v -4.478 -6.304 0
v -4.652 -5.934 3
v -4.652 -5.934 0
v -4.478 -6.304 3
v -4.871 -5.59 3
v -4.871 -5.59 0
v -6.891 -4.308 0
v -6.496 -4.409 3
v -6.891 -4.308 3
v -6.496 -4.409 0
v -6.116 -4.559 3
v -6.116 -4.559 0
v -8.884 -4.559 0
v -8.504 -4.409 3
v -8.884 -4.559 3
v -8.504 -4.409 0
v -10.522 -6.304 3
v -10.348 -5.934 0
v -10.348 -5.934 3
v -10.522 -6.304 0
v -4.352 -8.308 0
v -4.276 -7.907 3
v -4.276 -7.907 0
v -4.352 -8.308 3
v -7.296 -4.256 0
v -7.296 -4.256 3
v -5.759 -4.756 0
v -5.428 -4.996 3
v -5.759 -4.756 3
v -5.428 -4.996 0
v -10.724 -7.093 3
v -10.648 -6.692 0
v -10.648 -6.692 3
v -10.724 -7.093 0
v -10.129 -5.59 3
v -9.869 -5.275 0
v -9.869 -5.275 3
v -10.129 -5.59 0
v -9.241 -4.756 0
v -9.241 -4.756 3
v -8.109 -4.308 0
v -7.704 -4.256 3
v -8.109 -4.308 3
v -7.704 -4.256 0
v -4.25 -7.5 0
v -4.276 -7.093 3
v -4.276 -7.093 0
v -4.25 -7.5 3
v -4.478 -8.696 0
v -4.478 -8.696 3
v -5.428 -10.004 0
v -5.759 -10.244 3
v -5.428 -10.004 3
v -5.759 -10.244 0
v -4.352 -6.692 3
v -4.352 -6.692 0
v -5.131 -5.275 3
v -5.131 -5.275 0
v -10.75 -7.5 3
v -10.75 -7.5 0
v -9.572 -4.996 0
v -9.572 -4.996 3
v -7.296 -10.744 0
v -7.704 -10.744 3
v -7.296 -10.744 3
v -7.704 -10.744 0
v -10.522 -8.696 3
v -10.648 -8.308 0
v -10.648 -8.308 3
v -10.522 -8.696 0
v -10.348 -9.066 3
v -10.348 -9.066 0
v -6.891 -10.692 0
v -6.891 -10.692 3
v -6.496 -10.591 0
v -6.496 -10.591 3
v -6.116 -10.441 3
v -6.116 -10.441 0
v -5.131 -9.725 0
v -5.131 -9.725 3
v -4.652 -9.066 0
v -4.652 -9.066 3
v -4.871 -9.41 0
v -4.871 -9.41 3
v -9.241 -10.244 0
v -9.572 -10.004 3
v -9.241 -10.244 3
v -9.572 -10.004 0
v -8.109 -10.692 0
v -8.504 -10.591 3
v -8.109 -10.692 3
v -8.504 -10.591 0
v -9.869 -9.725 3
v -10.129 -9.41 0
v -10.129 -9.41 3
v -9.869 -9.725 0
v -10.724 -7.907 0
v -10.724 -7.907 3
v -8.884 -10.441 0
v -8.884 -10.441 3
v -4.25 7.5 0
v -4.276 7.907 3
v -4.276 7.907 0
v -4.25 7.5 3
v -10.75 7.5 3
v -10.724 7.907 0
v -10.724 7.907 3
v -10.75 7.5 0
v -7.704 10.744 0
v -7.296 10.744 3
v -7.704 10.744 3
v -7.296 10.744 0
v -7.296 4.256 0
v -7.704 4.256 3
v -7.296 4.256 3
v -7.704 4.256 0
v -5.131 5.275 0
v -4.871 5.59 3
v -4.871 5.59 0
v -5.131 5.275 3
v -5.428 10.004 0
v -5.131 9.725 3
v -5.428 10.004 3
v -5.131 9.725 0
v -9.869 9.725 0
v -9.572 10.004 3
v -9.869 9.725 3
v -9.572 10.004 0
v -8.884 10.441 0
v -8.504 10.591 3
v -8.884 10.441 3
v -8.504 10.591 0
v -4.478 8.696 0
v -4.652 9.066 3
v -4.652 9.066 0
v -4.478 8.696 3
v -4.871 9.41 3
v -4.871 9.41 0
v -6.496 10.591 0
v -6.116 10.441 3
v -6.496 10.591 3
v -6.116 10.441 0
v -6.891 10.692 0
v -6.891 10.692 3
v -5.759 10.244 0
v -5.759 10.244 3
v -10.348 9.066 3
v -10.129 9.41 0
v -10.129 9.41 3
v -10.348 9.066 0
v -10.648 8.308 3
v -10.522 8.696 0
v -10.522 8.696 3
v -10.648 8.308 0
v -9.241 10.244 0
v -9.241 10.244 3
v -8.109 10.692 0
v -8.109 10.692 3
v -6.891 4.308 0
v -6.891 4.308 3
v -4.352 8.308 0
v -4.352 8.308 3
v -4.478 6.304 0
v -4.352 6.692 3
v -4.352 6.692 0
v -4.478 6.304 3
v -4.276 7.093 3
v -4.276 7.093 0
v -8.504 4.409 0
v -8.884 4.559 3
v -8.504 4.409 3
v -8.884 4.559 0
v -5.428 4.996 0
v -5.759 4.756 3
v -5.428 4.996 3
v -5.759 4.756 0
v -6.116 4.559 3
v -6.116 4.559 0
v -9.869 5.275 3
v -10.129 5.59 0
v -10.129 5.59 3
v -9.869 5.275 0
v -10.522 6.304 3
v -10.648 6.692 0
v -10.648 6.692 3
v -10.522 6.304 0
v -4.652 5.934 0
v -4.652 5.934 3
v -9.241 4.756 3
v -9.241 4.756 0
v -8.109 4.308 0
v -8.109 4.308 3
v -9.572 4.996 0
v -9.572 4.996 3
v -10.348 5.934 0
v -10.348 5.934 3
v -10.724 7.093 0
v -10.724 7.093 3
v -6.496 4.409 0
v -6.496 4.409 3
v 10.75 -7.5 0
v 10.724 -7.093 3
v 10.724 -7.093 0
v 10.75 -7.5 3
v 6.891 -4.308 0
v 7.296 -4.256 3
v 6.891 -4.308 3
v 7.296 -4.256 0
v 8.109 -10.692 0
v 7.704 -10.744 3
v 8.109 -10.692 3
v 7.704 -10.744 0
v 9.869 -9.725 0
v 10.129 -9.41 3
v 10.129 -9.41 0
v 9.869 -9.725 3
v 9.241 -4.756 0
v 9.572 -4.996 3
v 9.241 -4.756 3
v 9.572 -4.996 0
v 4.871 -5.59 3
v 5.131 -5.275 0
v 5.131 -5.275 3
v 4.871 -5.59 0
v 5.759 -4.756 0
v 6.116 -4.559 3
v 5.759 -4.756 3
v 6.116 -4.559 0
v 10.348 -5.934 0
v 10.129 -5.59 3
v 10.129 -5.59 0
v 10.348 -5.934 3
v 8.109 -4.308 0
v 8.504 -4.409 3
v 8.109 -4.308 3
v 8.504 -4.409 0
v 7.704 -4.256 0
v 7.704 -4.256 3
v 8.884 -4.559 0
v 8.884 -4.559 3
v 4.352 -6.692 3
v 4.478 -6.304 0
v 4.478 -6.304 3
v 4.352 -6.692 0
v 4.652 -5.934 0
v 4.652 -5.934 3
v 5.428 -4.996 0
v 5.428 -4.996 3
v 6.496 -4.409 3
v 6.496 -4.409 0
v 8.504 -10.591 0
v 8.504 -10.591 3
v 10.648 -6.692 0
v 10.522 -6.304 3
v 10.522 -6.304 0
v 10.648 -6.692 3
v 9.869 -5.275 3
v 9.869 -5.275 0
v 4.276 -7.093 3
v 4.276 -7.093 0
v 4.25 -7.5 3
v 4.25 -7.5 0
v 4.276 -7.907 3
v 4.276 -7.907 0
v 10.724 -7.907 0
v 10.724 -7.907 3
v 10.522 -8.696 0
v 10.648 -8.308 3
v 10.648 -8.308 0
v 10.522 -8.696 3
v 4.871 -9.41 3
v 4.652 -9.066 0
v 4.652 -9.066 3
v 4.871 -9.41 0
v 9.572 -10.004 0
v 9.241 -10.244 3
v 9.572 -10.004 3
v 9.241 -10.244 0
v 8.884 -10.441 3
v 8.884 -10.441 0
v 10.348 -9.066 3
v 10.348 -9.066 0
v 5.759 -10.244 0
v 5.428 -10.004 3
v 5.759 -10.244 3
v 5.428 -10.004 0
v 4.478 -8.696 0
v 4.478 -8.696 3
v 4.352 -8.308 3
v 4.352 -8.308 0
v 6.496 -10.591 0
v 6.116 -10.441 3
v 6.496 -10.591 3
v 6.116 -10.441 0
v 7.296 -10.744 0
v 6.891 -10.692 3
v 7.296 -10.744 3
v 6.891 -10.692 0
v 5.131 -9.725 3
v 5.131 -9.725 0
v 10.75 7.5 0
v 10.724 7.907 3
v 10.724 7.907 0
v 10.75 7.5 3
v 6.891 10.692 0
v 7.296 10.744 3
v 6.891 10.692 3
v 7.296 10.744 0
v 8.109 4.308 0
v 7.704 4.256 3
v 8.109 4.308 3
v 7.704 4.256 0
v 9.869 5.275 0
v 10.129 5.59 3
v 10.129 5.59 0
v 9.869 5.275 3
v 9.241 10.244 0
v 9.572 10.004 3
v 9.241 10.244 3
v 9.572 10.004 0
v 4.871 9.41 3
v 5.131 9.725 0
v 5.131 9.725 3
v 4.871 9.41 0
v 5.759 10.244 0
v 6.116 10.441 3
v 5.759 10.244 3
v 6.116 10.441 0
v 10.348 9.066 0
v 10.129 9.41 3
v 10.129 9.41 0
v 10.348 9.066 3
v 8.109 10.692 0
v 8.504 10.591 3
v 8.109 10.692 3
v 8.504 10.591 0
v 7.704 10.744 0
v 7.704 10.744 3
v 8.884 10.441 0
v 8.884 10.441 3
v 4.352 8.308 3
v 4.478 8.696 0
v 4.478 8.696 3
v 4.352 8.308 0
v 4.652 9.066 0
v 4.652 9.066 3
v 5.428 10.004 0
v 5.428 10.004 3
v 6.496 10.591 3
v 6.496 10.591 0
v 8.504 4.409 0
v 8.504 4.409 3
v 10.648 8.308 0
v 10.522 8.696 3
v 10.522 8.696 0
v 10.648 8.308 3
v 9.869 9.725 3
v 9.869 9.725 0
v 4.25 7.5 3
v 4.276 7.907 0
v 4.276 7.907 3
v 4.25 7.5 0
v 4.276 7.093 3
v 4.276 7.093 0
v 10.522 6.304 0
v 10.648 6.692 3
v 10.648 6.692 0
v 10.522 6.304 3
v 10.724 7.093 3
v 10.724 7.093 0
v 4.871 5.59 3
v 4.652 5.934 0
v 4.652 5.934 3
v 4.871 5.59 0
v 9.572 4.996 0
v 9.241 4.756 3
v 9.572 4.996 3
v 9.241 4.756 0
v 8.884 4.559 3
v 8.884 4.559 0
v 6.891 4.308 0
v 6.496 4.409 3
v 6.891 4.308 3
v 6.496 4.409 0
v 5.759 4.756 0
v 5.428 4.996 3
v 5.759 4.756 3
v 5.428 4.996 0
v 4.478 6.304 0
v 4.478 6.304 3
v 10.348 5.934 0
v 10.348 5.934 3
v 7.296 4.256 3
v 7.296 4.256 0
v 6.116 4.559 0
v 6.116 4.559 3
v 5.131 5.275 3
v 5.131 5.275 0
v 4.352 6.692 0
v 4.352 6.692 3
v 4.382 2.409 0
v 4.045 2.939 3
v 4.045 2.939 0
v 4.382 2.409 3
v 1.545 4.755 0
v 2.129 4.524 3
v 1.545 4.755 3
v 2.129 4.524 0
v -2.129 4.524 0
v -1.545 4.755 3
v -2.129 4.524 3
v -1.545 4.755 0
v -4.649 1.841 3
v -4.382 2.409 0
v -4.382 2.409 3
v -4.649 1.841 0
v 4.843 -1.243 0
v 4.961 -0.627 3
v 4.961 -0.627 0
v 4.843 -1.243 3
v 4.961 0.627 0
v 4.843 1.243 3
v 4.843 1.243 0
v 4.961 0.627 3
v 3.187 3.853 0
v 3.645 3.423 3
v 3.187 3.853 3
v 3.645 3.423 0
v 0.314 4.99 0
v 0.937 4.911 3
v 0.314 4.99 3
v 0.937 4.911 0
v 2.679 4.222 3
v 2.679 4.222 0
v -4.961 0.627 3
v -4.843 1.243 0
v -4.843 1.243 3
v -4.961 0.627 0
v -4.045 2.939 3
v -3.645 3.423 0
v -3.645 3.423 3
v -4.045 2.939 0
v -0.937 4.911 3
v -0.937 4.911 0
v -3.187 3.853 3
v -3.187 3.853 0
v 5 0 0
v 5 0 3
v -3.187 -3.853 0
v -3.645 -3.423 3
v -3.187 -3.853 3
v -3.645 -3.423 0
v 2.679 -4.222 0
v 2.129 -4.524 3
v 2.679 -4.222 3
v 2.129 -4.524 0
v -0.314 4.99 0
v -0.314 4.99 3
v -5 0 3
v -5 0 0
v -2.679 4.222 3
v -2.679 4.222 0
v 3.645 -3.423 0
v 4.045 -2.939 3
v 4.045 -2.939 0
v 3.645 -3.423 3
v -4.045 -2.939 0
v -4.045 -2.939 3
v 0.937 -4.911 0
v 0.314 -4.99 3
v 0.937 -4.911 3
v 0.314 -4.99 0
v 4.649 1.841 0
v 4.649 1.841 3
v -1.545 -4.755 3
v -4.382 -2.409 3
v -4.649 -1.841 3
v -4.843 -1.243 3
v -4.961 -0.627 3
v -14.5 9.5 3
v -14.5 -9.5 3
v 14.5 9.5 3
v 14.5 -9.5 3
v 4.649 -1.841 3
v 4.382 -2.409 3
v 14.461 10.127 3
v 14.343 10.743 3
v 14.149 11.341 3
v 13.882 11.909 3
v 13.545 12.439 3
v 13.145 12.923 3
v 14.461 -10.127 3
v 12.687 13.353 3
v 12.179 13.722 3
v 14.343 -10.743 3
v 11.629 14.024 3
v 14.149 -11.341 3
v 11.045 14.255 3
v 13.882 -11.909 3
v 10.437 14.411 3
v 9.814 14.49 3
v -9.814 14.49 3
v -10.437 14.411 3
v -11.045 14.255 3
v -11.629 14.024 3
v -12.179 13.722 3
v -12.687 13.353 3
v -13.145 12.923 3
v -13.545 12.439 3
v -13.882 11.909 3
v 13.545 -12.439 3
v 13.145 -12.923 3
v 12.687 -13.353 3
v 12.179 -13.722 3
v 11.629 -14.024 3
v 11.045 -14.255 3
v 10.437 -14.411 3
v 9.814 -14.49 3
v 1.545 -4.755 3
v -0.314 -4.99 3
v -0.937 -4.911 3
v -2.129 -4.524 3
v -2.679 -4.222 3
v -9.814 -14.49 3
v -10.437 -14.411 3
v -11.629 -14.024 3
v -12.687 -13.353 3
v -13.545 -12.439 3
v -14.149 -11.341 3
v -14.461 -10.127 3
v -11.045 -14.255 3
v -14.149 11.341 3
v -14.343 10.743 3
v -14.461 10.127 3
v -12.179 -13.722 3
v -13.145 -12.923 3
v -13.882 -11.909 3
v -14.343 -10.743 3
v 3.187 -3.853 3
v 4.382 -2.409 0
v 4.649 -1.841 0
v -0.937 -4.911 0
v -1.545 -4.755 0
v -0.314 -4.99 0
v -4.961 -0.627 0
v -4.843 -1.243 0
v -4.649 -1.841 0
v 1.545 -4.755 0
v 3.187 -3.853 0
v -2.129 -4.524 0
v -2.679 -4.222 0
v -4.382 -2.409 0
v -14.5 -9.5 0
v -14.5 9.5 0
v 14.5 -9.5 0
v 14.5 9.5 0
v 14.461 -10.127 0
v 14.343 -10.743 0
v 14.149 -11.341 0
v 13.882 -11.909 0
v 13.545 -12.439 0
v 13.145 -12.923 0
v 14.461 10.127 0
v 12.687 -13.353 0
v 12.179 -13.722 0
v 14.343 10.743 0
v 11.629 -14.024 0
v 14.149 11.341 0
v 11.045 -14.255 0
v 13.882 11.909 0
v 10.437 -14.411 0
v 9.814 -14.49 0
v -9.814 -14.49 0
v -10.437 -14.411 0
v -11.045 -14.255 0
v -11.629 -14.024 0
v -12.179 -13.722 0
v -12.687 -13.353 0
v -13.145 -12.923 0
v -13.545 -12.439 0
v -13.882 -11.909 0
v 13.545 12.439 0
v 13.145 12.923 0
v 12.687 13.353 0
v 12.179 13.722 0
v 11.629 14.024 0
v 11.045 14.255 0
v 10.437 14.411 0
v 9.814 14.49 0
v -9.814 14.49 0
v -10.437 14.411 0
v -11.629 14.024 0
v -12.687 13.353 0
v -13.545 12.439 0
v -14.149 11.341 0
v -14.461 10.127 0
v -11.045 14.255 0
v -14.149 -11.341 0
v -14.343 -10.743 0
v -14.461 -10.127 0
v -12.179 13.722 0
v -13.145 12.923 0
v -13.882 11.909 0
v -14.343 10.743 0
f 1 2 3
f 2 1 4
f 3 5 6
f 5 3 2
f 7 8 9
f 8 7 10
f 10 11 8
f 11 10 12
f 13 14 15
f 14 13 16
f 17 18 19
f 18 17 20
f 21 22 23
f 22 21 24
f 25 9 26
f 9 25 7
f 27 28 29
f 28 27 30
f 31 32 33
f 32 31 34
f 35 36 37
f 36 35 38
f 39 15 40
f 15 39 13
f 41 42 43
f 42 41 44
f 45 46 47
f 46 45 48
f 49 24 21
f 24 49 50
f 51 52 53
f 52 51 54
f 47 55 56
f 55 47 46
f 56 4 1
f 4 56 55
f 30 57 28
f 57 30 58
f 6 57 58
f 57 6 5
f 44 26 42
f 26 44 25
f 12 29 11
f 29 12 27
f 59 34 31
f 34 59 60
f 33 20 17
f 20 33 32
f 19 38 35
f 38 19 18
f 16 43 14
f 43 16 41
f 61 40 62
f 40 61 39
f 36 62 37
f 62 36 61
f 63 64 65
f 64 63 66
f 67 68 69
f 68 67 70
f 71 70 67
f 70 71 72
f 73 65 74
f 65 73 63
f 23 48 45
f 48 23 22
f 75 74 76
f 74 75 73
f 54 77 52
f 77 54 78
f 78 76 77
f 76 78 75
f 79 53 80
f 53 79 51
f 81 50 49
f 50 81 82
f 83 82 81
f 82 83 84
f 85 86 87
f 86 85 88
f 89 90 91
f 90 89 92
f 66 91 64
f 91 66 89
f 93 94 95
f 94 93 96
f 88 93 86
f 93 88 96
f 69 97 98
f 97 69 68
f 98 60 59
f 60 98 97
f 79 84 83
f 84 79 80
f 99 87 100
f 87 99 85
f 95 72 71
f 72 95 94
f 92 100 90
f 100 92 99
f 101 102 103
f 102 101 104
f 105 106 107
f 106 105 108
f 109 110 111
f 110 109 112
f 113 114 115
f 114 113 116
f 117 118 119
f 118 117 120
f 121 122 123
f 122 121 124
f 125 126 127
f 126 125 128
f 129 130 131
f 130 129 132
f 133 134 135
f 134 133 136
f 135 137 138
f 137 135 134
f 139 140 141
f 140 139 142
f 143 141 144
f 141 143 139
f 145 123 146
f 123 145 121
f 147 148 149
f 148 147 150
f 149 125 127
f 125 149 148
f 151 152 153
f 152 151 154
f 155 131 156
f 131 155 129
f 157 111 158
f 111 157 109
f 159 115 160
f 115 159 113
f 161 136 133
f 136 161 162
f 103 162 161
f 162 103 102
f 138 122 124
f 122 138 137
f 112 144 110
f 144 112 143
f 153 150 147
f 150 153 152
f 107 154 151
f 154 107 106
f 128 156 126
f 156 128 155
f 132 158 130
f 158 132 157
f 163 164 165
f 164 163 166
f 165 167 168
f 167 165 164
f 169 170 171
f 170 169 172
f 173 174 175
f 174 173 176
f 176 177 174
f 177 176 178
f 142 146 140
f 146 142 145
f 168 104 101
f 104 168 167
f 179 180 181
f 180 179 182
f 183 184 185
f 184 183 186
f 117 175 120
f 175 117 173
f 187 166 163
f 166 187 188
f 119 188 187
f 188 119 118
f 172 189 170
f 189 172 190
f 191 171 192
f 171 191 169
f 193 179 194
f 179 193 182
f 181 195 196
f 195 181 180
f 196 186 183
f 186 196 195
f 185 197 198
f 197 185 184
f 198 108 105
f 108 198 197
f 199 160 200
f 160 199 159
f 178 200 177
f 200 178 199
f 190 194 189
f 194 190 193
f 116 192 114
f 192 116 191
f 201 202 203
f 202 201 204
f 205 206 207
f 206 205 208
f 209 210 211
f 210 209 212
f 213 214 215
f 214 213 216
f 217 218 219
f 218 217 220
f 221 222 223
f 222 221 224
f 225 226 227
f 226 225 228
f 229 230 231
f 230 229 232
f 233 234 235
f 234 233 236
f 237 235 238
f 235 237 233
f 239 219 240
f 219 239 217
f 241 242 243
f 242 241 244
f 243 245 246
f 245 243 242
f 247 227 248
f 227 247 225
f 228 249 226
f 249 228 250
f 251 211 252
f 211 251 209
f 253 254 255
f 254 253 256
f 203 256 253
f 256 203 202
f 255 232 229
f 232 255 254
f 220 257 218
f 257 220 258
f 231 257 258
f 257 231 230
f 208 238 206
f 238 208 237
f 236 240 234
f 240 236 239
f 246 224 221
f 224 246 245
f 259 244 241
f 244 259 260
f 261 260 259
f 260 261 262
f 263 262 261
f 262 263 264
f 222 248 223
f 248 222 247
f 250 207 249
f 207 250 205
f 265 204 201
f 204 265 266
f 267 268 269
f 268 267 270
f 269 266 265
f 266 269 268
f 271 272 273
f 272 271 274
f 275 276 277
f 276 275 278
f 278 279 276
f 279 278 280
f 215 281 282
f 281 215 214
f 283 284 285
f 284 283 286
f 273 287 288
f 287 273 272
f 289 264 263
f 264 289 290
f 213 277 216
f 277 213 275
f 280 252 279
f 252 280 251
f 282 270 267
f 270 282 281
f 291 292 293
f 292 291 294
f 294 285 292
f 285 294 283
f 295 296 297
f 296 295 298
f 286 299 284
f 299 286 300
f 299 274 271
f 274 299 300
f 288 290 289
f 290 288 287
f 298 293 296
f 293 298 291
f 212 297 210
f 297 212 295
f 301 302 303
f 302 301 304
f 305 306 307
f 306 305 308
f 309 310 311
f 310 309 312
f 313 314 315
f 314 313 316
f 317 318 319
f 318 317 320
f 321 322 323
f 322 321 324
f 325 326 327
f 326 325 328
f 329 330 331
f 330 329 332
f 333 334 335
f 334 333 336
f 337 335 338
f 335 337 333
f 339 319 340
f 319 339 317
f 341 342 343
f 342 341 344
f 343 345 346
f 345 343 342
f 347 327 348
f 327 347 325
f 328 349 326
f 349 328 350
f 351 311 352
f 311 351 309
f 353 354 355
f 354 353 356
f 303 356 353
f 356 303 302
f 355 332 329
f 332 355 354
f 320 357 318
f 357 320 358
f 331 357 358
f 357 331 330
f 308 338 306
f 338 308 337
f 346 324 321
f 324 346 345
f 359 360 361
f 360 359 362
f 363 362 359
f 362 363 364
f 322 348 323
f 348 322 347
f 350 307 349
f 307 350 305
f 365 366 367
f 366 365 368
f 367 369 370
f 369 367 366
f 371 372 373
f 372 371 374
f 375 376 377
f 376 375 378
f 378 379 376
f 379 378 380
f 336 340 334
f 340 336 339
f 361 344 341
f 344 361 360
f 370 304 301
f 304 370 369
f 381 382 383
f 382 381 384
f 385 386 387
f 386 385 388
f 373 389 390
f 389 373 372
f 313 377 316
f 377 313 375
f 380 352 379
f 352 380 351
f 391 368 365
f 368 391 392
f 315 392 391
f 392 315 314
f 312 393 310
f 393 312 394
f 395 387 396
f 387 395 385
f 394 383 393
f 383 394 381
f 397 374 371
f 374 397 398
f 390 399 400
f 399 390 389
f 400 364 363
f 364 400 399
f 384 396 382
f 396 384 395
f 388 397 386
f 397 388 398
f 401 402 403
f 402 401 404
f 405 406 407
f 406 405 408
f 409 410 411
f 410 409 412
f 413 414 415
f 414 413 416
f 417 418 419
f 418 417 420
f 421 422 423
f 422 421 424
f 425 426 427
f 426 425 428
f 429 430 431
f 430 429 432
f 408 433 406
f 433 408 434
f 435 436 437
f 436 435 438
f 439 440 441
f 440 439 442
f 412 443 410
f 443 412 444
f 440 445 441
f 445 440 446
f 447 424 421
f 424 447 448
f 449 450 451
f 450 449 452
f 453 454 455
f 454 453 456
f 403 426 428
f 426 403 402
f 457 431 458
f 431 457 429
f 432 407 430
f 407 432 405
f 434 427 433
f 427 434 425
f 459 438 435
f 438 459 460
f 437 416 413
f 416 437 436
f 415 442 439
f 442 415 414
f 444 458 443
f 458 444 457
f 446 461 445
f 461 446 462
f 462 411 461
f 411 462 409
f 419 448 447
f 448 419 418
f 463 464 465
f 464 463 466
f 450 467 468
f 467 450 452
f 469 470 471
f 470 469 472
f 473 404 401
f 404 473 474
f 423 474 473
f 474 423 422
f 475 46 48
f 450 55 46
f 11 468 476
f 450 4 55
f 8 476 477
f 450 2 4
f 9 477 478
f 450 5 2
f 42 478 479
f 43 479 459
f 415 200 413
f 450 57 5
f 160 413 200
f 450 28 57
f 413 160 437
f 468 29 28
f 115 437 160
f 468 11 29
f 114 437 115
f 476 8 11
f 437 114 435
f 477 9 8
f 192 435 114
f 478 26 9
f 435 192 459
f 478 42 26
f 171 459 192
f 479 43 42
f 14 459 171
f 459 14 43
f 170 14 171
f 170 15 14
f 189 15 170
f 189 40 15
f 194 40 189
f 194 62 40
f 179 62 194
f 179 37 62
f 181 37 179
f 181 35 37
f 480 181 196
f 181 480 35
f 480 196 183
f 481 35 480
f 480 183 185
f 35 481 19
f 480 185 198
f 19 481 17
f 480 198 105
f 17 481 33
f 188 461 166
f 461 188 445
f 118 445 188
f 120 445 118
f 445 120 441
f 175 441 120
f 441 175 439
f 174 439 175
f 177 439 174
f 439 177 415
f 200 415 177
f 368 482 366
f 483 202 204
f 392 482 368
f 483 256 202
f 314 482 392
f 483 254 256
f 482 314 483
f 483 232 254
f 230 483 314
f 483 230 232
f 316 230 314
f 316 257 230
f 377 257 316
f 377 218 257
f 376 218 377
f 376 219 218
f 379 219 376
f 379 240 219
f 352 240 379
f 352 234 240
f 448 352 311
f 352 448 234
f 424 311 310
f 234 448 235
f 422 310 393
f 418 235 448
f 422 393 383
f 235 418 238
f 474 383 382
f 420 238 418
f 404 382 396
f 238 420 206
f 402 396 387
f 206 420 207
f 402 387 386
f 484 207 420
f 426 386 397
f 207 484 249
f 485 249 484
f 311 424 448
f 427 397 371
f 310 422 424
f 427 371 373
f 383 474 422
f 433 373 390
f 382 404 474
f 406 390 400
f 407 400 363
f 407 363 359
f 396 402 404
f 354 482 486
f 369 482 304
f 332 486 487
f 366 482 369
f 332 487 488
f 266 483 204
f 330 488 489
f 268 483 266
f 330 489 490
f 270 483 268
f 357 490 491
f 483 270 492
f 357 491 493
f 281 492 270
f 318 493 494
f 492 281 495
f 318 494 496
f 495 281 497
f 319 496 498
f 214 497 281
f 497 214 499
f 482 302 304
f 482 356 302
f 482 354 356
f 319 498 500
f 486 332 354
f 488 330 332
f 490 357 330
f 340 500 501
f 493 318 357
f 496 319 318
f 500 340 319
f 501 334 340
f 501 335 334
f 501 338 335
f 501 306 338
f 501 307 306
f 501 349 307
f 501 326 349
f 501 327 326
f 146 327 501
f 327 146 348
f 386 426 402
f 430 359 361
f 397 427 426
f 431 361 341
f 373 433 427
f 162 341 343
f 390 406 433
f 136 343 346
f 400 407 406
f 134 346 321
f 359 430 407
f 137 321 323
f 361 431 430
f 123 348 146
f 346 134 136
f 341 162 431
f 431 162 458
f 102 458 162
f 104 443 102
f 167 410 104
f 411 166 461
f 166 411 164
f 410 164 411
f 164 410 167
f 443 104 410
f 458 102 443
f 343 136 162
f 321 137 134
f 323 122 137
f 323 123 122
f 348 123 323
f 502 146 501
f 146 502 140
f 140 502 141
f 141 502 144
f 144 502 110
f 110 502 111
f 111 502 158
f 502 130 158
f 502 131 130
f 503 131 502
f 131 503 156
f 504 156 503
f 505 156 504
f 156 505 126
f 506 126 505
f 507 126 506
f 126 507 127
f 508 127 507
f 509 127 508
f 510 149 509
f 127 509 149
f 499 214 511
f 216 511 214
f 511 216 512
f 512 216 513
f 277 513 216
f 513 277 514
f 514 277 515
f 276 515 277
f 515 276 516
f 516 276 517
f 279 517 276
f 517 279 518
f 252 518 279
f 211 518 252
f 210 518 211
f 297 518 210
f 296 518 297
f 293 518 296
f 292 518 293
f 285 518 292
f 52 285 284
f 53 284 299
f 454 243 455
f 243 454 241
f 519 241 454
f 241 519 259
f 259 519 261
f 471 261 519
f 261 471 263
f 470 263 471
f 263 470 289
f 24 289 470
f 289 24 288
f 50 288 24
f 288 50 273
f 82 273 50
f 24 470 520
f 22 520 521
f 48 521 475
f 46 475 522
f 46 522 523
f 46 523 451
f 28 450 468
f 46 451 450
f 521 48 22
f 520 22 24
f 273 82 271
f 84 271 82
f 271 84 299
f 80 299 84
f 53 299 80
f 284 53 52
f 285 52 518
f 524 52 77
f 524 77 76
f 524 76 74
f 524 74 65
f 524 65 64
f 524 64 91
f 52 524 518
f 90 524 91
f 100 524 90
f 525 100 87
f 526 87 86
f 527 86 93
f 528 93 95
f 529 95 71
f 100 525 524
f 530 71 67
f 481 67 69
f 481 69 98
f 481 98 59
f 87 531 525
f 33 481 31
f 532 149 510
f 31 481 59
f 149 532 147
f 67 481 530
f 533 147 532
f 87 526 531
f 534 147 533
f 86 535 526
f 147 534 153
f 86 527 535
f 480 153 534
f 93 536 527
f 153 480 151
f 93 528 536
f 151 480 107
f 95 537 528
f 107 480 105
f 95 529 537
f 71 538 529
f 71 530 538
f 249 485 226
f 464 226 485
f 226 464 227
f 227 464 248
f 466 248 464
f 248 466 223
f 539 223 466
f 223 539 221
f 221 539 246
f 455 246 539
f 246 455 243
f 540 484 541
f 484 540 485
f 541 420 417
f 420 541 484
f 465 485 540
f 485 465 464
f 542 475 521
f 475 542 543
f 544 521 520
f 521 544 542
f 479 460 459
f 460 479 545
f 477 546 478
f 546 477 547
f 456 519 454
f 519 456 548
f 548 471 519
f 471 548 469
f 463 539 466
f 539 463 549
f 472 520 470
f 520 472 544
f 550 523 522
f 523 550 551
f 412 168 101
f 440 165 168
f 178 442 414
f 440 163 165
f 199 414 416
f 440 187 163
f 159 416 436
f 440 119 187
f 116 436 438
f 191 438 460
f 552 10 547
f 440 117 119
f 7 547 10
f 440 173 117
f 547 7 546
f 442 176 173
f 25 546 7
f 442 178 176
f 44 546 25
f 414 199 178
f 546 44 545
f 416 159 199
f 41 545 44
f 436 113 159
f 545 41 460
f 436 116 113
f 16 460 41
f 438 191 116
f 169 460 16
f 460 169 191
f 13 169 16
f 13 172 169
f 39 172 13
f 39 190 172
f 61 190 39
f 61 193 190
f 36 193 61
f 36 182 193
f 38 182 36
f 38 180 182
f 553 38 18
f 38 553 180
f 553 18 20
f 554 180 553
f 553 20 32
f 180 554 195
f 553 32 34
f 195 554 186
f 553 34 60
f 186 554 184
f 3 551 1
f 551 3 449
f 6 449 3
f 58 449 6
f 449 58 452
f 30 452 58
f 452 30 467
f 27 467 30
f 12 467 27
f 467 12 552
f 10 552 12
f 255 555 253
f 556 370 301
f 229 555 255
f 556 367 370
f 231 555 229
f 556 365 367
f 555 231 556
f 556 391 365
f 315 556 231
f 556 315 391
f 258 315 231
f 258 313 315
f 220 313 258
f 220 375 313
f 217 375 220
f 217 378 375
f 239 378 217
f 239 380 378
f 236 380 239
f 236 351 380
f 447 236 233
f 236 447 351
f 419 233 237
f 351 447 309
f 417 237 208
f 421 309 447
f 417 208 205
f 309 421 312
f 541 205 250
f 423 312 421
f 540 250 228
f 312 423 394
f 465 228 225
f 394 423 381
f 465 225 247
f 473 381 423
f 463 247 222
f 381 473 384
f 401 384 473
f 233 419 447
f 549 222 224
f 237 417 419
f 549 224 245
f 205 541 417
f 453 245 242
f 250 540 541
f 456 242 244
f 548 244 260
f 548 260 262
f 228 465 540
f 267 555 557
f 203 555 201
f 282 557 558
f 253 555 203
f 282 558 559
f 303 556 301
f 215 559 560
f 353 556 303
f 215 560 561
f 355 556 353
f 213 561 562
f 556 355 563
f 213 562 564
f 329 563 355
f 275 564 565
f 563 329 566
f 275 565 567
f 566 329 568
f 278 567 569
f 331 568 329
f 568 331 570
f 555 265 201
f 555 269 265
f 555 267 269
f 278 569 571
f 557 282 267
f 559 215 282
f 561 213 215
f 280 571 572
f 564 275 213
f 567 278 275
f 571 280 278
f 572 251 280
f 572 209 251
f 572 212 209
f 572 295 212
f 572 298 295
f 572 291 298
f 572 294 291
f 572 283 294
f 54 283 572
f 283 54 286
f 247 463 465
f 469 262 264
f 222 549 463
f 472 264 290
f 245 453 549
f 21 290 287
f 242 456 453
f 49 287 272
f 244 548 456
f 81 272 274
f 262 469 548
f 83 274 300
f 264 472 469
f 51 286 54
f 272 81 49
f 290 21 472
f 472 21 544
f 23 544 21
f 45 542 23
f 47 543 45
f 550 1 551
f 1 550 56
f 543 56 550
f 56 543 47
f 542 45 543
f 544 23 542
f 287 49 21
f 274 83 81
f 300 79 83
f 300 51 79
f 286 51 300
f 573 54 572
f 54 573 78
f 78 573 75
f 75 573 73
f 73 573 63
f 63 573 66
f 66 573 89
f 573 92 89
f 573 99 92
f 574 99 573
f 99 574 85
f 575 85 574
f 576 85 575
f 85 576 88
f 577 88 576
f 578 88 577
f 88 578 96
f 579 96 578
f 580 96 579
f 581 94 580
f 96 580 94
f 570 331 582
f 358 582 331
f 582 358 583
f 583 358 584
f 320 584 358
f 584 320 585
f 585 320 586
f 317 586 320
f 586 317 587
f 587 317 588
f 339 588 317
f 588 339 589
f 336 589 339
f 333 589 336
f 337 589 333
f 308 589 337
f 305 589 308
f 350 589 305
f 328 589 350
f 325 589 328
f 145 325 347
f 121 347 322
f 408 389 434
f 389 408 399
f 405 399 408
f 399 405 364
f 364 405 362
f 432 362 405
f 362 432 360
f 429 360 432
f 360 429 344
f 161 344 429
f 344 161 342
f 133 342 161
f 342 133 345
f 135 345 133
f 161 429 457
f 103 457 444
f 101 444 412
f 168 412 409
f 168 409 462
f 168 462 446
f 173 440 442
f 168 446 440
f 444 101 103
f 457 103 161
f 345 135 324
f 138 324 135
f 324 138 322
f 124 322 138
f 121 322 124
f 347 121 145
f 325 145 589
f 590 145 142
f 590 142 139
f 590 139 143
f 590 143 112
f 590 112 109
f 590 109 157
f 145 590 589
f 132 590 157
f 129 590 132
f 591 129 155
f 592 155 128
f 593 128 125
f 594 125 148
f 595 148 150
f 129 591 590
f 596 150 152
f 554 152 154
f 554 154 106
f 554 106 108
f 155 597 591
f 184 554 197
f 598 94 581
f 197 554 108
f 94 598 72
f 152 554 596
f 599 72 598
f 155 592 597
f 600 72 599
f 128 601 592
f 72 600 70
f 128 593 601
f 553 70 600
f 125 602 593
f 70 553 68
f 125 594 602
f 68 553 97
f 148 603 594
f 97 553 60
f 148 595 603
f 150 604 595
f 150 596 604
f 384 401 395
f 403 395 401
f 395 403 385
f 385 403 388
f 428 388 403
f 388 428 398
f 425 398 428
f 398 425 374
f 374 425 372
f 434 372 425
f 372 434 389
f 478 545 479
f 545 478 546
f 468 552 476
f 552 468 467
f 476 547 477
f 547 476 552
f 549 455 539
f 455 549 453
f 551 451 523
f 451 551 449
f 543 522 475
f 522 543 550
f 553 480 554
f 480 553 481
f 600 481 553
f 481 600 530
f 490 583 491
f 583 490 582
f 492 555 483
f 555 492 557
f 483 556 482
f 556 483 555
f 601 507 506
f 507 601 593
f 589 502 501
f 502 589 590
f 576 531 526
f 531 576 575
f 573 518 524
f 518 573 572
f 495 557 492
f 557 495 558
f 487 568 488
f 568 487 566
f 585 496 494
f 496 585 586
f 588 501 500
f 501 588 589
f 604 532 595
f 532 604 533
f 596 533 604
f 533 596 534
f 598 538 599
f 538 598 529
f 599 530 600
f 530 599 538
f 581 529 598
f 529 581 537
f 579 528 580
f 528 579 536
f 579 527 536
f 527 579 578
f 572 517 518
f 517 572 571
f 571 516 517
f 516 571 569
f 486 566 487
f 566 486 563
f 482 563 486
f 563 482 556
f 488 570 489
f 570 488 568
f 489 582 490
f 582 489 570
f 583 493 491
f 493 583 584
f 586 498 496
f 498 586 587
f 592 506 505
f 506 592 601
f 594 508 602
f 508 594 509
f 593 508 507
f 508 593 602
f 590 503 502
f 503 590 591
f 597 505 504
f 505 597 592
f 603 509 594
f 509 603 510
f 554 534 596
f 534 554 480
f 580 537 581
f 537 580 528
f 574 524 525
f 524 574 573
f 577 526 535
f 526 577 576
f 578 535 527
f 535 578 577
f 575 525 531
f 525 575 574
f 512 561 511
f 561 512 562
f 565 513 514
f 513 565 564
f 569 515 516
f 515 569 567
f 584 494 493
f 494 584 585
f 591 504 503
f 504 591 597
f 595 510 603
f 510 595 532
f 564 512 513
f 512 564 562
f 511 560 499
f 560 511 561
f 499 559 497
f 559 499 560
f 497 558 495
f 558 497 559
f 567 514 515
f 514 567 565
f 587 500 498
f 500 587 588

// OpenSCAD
$fn = 50;


difference() {
	union() {
		hull() {
			translate(v = [-9.5000000000, 9.5000000000, 0]) {
				cylinder(h = 3, r = 5);
			}
			translate(v = [9.5000000000, 9.5000000000, 0]) {
				cylinder(h = 3, r = 5);
			}
			translate(v = [-9.5000000000, -9.5000000000, 0]) {
				cylinder(h = 3, r = 5);
			}
			translate(v = [9.5000000000, -9.5000000000, 0]) {
				cylinder(h = 3, r = 5);
			}
		}
	}
	union() {
		#translate(v = [-7.5000000000, -7.5000000000, -100.0000000000]) {
			cylinder(h = 200, r = 3.2500000000);
		}
		#translate(v = [-7.5000000000, 7.5000000000, -100.0000000000]) {
			cylinder(h = 200, r = 3.2500000000);
		}
		#translate(v = [7.5000000000, -7.5000000000, -100.0000000000]) {
			cylinder(h = 200, r = 3.2500000000);
		}
		#translate(v = [7.5000000000, 7.5000000000, -100.0000000000]) {
			cylinder(h = 200, r = 3.2500000000);
		}
		#cylinder(h = 3, r = 5.0000000000);
	}
}
